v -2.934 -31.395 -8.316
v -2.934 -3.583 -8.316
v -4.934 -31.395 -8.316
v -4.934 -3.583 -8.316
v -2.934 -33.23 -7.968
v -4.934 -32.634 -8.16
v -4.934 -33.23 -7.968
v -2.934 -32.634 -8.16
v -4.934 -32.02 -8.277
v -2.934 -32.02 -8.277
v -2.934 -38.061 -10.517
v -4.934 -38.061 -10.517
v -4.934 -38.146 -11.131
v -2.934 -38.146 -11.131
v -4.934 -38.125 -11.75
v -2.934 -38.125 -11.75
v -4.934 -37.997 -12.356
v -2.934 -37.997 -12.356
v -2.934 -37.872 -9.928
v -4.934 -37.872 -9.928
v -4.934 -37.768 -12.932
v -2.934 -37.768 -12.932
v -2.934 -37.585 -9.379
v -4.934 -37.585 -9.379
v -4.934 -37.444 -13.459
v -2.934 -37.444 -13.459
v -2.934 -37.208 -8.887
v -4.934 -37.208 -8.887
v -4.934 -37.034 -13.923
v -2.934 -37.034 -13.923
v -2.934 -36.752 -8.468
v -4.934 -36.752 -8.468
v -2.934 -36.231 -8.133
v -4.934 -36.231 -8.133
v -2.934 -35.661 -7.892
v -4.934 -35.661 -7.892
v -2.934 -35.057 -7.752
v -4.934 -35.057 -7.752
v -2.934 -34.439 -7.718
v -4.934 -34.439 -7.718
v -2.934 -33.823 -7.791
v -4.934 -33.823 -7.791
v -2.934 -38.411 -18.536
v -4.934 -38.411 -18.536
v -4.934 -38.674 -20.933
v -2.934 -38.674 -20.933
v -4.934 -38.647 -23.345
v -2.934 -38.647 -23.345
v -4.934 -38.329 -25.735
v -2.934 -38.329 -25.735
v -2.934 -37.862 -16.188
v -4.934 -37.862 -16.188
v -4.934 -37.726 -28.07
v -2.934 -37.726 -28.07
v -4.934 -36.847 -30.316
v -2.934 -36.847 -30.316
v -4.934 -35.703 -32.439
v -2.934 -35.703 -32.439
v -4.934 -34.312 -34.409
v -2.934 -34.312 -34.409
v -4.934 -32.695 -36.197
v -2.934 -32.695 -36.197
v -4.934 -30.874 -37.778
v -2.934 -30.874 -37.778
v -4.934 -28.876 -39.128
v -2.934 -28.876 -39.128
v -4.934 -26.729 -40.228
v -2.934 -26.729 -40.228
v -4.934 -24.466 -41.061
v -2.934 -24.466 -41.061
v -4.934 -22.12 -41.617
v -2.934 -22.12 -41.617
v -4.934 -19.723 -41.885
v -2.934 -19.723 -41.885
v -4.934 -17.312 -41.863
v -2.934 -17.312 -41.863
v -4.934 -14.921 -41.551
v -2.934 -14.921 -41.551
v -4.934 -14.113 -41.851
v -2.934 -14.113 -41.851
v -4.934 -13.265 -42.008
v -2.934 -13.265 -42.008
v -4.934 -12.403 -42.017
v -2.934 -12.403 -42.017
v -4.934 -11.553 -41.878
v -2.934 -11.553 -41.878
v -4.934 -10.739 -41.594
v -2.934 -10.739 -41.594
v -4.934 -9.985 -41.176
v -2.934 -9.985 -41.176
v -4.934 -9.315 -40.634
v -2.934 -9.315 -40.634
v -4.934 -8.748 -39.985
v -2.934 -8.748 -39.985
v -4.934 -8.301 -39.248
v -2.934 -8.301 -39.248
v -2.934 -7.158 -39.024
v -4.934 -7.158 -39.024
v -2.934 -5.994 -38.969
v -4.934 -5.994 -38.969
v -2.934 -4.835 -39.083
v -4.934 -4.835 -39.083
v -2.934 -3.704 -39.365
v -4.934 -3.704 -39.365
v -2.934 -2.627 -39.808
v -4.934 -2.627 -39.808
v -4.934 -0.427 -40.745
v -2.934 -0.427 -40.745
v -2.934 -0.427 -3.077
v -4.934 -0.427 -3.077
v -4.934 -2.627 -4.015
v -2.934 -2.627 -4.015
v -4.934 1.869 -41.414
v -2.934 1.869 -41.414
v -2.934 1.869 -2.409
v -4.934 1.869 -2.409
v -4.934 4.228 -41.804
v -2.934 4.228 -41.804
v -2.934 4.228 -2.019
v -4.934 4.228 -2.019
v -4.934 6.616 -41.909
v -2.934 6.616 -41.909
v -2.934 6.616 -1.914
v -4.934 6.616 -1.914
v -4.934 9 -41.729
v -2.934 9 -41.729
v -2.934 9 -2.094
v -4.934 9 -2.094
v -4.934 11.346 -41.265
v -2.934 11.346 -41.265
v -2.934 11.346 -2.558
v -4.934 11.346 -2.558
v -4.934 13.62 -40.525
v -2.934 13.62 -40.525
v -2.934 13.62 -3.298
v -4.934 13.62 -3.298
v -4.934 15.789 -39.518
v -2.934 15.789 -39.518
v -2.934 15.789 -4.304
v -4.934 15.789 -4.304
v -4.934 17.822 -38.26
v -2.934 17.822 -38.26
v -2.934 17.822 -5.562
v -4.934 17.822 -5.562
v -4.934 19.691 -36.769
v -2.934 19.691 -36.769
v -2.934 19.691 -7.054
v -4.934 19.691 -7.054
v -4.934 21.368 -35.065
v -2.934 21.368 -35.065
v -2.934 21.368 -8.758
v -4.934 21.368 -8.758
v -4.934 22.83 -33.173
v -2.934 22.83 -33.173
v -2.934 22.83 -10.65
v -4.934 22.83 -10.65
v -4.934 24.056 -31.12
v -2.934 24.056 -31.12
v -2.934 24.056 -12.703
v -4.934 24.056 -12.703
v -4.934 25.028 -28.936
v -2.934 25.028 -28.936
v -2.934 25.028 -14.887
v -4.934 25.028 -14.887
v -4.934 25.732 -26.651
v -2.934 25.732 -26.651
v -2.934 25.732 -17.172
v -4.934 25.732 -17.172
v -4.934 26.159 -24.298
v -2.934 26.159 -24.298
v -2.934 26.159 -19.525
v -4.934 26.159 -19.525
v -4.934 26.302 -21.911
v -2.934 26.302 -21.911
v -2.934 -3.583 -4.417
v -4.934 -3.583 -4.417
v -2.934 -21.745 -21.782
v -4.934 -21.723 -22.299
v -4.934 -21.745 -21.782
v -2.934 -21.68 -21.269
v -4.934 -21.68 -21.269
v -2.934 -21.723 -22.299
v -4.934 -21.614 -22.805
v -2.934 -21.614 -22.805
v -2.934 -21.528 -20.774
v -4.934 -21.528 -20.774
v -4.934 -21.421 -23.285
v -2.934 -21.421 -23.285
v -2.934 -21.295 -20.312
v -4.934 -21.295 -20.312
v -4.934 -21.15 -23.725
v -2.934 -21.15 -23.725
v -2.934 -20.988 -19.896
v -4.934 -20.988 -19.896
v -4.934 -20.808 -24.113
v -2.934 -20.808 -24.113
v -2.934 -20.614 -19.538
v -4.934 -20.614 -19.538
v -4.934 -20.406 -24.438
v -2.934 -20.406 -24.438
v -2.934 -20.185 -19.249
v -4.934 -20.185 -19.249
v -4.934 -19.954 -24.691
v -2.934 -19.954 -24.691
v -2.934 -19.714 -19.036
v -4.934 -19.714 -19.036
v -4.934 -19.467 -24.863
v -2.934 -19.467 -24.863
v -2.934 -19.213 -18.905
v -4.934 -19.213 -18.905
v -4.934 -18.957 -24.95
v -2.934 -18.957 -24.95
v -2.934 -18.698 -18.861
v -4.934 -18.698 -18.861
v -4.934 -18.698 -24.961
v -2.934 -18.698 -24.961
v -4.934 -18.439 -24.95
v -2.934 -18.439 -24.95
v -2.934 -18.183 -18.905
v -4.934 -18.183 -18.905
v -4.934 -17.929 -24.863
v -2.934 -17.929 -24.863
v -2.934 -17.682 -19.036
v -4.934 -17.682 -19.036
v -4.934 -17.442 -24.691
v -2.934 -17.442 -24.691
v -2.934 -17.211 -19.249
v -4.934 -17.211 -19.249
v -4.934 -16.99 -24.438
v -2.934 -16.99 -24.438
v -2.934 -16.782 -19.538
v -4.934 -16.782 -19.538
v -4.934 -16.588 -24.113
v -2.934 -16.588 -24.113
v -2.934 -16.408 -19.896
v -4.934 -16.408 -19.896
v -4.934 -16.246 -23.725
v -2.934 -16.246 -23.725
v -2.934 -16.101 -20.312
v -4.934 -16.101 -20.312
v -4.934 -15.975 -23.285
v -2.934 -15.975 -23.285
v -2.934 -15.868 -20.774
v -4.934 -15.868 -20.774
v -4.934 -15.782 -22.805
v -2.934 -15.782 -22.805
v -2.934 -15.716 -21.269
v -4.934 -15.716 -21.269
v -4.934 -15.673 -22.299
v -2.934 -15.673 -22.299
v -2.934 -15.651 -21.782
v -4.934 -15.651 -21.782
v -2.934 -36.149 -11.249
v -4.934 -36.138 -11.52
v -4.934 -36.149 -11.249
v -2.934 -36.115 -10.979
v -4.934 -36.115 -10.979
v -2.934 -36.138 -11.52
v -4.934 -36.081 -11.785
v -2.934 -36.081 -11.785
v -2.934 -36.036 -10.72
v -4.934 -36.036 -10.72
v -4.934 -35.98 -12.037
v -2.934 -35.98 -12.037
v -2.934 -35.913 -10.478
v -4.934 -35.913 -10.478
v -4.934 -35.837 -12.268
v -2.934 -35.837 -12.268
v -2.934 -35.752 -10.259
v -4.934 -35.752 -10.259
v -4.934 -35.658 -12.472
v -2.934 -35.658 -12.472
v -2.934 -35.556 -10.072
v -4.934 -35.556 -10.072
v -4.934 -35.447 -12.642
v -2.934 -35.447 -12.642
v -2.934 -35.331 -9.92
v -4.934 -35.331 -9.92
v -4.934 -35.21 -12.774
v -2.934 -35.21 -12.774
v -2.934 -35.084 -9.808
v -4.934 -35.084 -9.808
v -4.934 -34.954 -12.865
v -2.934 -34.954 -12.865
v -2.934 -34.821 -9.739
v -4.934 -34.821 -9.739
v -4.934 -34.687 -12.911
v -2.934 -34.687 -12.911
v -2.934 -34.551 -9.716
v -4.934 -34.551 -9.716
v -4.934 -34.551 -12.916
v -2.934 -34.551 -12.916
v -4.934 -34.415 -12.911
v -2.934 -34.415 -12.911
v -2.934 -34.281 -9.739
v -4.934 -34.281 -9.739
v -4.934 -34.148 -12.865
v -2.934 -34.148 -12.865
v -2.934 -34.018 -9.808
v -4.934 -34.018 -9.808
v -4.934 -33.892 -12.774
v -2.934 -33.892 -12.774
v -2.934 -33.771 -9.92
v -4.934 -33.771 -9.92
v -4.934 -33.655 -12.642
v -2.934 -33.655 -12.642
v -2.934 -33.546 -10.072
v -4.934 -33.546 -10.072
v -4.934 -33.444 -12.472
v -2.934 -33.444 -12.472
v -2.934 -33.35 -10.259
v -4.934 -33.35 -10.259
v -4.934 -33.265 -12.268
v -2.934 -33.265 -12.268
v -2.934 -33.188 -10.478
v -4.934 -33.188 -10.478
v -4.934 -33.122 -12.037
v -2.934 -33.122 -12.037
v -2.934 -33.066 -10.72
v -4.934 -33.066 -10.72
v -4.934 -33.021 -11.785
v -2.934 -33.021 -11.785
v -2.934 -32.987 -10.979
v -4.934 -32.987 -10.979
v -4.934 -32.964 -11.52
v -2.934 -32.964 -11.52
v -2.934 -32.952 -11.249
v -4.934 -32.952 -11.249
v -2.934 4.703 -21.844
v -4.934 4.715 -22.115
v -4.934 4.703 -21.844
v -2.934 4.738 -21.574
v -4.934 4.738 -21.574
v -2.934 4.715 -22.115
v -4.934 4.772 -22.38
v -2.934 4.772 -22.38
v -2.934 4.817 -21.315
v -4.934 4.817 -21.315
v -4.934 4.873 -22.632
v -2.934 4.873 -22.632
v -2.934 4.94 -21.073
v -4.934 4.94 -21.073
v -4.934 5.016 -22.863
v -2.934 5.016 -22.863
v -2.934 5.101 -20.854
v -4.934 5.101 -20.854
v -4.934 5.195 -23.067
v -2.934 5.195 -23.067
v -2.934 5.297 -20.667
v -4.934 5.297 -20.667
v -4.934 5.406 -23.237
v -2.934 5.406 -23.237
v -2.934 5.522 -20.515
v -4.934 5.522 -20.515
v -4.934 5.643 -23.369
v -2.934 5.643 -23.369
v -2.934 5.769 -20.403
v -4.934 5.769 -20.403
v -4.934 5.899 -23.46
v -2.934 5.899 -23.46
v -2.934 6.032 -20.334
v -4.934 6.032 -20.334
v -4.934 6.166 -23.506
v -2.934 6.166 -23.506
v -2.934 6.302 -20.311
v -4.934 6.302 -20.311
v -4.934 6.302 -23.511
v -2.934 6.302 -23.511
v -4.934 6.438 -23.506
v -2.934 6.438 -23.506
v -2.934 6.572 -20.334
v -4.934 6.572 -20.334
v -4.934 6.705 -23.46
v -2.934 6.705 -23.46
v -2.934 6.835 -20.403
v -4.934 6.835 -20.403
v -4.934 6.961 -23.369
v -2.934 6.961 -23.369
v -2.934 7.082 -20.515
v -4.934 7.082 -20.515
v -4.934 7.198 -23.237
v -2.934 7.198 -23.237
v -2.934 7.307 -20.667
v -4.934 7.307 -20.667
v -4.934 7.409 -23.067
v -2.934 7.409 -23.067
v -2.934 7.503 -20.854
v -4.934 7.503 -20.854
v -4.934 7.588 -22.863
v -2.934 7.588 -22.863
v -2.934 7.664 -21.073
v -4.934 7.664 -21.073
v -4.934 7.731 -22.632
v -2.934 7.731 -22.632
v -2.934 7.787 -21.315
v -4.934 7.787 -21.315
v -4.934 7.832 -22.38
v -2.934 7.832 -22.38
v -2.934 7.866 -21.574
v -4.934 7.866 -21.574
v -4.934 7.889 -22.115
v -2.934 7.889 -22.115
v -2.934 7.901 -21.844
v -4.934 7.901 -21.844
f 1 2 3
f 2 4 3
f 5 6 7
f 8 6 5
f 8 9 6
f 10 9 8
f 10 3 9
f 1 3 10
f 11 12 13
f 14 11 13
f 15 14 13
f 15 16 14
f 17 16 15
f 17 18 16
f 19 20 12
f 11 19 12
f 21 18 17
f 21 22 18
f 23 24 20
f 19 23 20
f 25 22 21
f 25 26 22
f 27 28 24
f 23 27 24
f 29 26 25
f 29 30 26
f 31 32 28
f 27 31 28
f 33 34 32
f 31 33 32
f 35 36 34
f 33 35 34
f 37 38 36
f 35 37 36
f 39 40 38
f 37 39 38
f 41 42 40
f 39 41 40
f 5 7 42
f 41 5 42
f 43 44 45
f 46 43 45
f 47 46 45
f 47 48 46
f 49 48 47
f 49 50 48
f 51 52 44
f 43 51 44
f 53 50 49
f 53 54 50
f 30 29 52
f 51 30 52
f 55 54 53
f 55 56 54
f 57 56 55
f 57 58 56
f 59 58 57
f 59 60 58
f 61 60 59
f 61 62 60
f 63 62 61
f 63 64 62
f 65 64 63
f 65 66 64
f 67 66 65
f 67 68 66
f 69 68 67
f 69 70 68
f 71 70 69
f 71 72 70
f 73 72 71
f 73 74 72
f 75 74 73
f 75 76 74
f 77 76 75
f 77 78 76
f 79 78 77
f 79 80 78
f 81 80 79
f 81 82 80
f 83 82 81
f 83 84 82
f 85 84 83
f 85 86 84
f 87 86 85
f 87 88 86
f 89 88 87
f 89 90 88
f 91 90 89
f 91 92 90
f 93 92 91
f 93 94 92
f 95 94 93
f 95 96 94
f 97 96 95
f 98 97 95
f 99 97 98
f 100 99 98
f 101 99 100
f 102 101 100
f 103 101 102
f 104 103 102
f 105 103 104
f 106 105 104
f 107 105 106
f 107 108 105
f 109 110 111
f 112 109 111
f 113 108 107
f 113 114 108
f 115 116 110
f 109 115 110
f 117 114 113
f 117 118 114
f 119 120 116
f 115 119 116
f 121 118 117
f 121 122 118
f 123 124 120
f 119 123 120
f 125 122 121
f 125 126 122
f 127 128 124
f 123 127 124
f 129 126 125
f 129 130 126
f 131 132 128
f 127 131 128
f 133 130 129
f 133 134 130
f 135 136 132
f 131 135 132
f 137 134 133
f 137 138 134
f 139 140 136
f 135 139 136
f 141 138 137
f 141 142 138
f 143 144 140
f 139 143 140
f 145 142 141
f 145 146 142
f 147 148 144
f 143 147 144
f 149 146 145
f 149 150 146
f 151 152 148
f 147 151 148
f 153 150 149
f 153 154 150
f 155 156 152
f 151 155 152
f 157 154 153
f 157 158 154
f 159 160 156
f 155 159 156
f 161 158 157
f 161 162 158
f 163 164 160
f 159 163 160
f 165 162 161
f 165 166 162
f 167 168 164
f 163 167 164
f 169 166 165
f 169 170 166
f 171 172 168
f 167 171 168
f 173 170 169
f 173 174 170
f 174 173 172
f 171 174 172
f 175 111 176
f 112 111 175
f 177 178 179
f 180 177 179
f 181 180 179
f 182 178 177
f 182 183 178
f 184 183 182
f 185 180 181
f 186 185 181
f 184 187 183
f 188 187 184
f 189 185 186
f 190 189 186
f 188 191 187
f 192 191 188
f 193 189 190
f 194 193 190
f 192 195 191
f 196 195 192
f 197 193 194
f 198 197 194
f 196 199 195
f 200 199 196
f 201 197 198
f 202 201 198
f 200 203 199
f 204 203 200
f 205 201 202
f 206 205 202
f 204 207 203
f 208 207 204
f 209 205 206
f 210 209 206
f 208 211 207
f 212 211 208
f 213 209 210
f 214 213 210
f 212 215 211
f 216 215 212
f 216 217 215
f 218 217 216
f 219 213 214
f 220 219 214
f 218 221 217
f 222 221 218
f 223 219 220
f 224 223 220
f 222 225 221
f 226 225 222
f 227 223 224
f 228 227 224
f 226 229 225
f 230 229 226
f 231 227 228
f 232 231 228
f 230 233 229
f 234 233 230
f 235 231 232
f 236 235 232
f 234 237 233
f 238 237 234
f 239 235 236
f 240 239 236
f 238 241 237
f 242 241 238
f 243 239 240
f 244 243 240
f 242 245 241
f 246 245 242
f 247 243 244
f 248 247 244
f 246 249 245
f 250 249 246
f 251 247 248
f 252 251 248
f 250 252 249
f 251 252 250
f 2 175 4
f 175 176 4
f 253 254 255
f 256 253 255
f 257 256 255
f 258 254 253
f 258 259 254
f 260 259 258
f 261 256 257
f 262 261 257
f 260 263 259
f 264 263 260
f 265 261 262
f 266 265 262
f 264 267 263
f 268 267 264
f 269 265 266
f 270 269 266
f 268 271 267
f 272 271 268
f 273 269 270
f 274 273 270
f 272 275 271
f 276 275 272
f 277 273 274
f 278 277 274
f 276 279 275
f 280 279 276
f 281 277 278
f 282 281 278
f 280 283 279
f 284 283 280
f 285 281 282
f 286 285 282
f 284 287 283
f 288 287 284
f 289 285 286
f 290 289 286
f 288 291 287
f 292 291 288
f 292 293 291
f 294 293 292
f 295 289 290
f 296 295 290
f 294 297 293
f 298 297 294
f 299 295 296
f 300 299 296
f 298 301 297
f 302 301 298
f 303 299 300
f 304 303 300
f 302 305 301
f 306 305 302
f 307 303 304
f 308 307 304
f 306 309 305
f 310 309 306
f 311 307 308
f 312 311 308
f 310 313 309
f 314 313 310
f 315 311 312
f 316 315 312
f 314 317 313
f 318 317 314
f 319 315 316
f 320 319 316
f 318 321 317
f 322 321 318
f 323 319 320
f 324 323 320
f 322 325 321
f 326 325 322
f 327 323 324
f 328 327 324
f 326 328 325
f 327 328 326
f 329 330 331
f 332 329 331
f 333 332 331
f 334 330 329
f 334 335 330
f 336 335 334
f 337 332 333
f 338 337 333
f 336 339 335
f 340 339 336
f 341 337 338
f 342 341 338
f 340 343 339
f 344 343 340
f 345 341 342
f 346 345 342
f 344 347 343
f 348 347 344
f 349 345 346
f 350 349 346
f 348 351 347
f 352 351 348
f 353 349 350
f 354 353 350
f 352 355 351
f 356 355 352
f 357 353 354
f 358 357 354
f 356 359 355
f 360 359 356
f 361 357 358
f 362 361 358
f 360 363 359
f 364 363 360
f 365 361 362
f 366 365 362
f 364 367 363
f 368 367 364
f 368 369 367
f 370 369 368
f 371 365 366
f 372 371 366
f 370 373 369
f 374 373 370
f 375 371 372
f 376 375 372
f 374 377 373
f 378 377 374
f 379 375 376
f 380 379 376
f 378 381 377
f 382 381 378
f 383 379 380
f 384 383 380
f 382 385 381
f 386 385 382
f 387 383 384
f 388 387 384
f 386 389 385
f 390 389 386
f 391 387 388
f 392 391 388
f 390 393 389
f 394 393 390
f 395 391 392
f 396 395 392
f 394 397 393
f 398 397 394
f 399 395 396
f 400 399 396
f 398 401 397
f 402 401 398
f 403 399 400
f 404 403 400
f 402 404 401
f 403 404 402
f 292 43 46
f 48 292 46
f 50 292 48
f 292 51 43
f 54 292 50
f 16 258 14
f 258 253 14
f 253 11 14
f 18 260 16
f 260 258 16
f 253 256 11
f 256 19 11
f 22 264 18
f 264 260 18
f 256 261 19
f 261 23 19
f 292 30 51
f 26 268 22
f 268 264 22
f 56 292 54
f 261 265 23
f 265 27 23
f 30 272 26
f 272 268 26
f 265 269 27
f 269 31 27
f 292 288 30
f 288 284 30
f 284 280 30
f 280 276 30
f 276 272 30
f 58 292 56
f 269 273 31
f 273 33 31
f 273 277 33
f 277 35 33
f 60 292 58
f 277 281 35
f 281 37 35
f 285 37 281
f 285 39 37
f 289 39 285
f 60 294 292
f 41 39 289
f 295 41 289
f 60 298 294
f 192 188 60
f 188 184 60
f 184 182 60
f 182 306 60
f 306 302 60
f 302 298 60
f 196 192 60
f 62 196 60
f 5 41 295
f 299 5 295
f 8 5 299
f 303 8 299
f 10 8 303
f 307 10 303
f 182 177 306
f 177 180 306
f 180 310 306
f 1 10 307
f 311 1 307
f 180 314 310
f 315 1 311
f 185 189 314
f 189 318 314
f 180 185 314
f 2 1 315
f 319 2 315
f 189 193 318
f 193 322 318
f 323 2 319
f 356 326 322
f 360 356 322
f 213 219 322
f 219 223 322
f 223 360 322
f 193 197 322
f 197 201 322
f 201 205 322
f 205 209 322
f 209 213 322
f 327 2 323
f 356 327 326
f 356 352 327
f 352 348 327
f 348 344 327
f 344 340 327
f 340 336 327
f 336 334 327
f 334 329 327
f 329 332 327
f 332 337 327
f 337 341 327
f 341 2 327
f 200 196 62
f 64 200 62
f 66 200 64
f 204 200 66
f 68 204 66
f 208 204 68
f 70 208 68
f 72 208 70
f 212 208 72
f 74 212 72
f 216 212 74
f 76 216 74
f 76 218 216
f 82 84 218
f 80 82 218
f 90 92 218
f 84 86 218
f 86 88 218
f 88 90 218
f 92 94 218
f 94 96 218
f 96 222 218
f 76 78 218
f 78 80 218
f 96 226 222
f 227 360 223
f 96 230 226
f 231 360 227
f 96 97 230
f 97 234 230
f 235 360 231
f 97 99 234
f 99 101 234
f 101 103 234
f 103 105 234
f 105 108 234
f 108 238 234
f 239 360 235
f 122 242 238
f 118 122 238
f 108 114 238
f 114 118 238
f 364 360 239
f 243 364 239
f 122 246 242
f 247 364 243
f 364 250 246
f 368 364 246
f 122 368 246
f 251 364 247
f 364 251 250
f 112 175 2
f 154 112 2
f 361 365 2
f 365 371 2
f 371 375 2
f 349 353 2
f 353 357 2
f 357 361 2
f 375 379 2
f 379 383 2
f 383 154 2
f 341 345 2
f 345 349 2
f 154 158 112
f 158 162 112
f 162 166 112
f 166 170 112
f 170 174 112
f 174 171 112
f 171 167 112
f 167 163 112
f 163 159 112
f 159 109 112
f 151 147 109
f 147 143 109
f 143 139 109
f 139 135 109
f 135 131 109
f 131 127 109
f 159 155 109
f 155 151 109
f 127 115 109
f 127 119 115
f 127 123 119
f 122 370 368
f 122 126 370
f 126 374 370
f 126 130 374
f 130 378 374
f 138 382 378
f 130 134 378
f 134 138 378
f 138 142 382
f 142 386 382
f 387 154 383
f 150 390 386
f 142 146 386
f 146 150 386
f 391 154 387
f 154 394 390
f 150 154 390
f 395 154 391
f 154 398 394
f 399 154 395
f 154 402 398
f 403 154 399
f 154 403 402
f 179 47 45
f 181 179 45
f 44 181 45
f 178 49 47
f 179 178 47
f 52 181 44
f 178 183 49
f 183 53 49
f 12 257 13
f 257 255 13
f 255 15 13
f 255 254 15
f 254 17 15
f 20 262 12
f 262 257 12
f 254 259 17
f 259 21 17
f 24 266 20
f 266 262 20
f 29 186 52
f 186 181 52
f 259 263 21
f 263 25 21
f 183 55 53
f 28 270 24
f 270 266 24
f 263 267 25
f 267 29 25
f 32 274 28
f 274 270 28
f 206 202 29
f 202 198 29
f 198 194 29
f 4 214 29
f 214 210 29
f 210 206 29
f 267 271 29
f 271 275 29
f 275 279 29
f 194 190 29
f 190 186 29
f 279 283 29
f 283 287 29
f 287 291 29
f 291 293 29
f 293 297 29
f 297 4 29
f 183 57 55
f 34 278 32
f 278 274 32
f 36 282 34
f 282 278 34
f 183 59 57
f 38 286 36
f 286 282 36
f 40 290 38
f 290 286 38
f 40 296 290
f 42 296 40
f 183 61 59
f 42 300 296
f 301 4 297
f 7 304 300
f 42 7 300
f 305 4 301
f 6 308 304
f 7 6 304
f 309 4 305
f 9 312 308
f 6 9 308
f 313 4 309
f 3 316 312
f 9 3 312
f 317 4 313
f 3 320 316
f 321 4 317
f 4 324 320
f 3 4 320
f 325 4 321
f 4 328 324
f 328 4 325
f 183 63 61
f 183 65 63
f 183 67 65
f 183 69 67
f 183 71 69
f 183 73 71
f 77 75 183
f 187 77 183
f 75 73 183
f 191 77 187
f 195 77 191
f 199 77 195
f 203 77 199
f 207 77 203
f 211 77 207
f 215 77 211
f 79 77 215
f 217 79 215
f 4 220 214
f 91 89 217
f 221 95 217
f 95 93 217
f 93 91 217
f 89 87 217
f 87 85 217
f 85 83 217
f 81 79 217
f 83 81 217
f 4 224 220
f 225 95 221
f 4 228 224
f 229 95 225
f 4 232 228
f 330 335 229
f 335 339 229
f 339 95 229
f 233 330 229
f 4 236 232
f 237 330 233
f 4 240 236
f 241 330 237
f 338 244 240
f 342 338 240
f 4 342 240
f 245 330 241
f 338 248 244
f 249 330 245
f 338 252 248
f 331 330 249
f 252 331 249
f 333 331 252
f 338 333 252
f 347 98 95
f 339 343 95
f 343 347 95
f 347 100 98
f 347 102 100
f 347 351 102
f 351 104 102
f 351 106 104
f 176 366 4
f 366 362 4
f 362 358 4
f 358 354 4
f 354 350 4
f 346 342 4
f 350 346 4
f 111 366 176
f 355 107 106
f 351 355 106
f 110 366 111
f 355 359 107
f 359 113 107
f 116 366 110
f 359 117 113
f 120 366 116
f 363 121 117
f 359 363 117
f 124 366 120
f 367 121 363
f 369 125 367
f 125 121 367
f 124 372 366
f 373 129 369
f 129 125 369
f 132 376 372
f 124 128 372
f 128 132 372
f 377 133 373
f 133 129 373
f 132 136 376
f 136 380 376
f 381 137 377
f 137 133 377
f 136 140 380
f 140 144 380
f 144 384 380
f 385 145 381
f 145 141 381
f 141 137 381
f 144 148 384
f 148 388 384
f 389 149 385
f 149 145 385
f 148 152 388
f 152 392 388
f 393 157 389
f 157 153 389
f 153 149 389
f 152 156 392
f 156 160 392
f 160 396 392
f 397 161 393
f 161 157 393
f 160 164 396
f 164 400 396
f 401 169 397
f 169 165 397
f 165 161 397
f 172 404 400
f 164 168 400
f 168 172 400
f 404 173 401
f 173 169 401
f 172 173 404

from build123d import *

# Parameters (mm, degrees)
SKETCH1_R           = 1.6
SKETCH1_R_2         = 3.05
BOSS_EXTRUDE1_DEPTH = 2


with BuildPart() as part:
    # Sketch1 → Boss-Extrude1 (new body)
    with BuildSketch(Plane(origin=(-4.933780691, 0, 0), x_dir=(0, 0, -1), z_dir=(1, 0, 0))):
        with BuildLine():
            Line((8.316418793, -3.583005728), (8.316418793, -31.394980118))
            ThreePointArc((8.316418793, -31.394980118), (8.228435382, -32.328839328), (7.967581583, -33.22983289))
            ThreePointArc((7.967581583, -33.22983289), (9.37872929, -37.584960404), (13.923442901, -37.033551565))
            ThreePointArc((13.923442901, -37.033551565), (34.408956218, -34.312472042), (41.551457155, -14.920586884))
            ThreePointArc((41.551457155, -14.920586884), (41.753619834, -11.13958937), (39.247730179, -8.301045906))
            ThreePointArc((39.247730179, -8.301045906), (39.005043324, -5.412218315), (39.807804245, -2.626577156))
            ThreePointArc((39.807804245, -2.626577156), (21.911418793, 26.301994272), (4.015033341, -2.626577156))
            ThreePointArc((4.015033341, -2.626577156), (4.231547099, -3.098268174), (4.417019815, -3.583005728))
            Line((4.417019815, -3.583005728), (8.316418793, -3.583005728))
        make_face()
        with Locations((11.316418793, -34.550926886)):
            Circle(SKETCH1_R, mode=Mode.SUBTRACT)
        with Locations((21.911418793, -18.698005728)):
            Circle(SKETCH1_R_2, mode=Mode.SUBTRACT)
        with Locations((21.911418793, 6.301994272)):
            Circle(SKETCH1_R, mode=Mode.SUBTRACT)
    extrude(amount=BOSS_EXTRUDE1_DEPTH)


solid = part.part
